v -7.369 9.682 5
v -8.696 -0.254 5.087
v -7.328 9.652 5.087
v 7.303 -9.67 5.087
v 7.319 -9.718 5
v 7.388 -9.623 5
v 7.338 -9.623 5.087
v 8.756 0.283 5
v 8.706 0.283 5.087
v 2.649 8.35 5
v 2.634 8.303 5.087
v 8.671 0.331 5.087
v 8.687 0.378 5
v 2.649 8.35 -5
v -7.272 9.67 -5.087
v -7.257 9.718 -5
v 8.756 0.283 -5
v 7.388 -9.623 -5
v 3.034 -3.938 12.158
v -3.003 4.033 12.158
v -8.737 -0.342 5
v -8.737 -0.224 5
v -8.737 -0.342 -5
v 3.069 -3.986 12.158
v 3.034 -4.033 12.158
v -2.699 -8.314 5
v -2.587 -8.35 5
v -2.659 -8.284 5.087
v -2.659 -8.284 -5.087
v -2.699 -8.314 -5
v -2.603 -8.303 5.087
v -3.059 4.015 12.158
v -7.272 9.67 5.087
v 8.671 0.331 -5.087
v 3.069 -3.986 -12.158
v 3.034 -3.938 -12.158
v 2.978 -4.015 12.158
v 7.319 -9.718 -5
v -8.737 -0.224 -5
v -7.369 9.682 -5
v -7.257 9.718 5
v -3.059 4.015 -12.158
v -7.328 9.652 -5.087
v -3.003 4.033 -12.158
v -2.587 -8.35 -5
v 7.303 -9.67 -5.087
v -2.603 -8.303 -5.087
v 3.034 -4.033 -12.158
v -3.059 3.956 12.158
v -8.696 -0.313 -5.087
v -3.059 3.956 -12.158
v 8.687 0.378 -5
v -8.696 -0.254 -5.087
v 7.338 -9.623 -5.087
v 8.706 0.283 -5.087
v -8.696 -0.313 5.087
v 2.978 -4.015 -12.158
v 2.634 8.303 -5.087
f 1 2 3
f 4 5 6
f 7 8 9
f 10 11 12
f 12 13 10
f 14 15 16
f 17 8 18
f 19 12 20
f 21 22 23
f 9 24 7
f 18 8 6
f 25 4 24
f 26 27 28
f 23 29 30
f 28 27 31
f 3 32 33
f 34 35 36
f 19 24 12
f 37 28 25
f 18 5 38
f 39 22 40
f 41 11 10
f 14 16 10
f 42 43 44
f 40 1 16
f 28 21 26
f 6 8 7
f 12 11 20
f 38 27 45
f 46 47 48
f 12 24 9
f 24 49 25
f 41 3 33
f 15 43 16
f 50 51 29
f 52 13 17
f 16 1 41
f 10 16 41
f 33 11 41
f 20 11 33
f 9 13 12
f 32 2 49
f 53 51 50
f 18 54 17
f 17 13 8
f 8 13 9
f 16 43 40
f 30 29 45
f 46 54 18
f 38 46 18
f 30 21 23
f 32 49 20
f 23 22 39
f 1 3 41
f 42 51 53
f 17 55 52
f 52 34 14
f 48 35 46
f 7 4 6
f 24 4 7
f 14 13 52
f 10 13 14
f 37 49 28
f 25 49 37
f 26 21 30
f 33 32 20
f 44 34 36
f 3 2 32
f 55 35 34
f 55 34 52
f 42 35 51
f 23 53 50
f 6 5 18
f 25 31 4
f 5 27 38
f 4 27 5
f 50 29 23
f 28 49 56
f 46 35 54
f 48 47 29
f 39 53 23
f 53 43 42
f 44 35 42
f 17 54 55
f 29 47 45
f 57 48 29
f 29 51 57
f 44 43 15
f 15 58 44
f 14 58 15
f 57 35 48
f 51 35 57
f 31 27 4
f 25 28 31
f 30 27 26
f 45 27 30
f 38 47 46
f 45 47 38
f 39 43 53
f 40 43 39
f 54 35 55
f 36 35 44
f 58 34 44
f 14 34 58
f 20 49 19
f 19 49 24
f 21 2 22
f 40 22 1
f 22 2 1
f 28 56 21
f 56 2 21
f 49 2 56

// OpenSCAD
// Auto-generated OpenSCAD file

    inner_points = 10*[[0.7287883694352655, -0.9622755809862549, 0.4999999999999998], [0.728788369435265, -0.9622755809862551, -0.5000000000000002], [-0.728788369435265, 0.9622755809862551, 0.5000000000000002], [-0.7287883694352655, 0.9622755809862549, -0.4999999999999998], [0.30187402671986113, -0.3985875963849562, 1.2071067811865475], [0.3018740267198599, -0.39858759638495667, -1.2071067811865475], [-0.3018740267198599, 0.39858759638495667, 1.2071067811865475], [-0.30187402671986113, 0.3985875963849562, -1.2071067811865475], [-0.26181395788143796, -0.8255019391003613, 0.5000000000000002], [0.8655620113211595, 0.02832674633044846, 0.49999999999999956], [-0.2618139578814384, -0.8255019391003613, -0.4999999999999998], [0.8655620113211591, 0.028326746330448405, -0.5000000000000004], [-0.8655620113211591, -0.028326746330448405, 0.5000000000000004], [0.2618139578814384, 0.8255019391003613, 0.4999999999999998], [-0.8655620113211595, -0.02832674633044846, -0.49999999999999956], [0.26181395788143796, 0.8255019391003613, -0.5000000000000002]];

    outer_points = 10*[[-0.5696478499849842, -0.4314281054603697, -1.093836321399554], [-0.960592326979208, 0.4314281054603697, -0.7734590825338425], [0.960592326979208, -0.4314281054603697, 0.7734590825338425], [0.5696478499849842, 0.4314281054603697, 1.093836321399554], [0.1549886117537691, -1.0415595833913545, -0.7734590782057024], [-0.7888348467405426, 1.0415595833913545, -3.0604573320047734e-09], [0.7888348467405426, -1.0415595833913545, 3.0604573320047734e-09], [-0.1549886117537691, 1.0415595833913545, 0.7734590782057024], [-0.5933626113683385, -0.7888348480349219, -0.16018861993246514], [0.3504608533757889, -0.07402136288581751, -0.9336477001994059], [-0.9843070883625624, 0.07402136288581751, 0.1601886189332462], [-0.04048362361843505, 0.7888348480349219, -0.6132704613336946], [0.04048362361843505, -0.7888348480349219, 0.6132704613336946], [0.9843070883625624, -0.07402136288581751, -0.1601886189332462], [-0.3504608533757889, 0.07402136288581751, 0.9336477001994059], [0.5933626113683385, 0.7888348480349219, 0.16018861993246514]];

    // Convex hull for inner set (I)
    module inner_hull() {
        hull() {
            for (p = inner_points) {
                translate(p) sphere(r=0.1);
            }
        }
    }

    // Convex hull for outer set (O) minus inner hull (O \ I)
    module outer_minus_inner() {
        difference() {
            hull() {
                for (p = outer_points) {
                    translate(p) sphere(r=0.1);
                }
            }
            inner_hull(); // Subtract inner hull
        }
    }

    // Convex hull for outer set (O) minus all translated inner hulls
    module outer_minus_AllTranslationInner() {
        difference() {
            hull() {
                for (p = outer_points) {
                    translate(p) sphere(r=0.1);
                }
            }
            hull() {
                translate([0,0,50]) inner_hull();
                translate([0,0,-50]) inner_hull();
            }; // Subtract translated inner hulls
        }
    }

    // Difference between outer_minus_inner and outer_minus_AllTranslationInner
    module outer_minus_inner_diff() {
        difference() {
            // Outer minus inner
            difference() {
                hull() {
                    for (p = outer_points) {
                        translate(p) sphere(r=0.1);
                    }
                }
                inner_hull();
            }

            // Subtract Outer minus AllTranslationInner
            difference() {
                hull() {
                    for (p = outer_points) {
                        translate(p) sphere(r=0.1);
                    }
                }
                hull() {
                    translate([0,0,50]) inner_hull();
                    translate([0,0,-50]) inner_hull();
                };
            }
        }
    }

    // Rendering all with colors applied
    color([1, 0, 0, 0.5]) inner_hull(); // Transparent red
    
